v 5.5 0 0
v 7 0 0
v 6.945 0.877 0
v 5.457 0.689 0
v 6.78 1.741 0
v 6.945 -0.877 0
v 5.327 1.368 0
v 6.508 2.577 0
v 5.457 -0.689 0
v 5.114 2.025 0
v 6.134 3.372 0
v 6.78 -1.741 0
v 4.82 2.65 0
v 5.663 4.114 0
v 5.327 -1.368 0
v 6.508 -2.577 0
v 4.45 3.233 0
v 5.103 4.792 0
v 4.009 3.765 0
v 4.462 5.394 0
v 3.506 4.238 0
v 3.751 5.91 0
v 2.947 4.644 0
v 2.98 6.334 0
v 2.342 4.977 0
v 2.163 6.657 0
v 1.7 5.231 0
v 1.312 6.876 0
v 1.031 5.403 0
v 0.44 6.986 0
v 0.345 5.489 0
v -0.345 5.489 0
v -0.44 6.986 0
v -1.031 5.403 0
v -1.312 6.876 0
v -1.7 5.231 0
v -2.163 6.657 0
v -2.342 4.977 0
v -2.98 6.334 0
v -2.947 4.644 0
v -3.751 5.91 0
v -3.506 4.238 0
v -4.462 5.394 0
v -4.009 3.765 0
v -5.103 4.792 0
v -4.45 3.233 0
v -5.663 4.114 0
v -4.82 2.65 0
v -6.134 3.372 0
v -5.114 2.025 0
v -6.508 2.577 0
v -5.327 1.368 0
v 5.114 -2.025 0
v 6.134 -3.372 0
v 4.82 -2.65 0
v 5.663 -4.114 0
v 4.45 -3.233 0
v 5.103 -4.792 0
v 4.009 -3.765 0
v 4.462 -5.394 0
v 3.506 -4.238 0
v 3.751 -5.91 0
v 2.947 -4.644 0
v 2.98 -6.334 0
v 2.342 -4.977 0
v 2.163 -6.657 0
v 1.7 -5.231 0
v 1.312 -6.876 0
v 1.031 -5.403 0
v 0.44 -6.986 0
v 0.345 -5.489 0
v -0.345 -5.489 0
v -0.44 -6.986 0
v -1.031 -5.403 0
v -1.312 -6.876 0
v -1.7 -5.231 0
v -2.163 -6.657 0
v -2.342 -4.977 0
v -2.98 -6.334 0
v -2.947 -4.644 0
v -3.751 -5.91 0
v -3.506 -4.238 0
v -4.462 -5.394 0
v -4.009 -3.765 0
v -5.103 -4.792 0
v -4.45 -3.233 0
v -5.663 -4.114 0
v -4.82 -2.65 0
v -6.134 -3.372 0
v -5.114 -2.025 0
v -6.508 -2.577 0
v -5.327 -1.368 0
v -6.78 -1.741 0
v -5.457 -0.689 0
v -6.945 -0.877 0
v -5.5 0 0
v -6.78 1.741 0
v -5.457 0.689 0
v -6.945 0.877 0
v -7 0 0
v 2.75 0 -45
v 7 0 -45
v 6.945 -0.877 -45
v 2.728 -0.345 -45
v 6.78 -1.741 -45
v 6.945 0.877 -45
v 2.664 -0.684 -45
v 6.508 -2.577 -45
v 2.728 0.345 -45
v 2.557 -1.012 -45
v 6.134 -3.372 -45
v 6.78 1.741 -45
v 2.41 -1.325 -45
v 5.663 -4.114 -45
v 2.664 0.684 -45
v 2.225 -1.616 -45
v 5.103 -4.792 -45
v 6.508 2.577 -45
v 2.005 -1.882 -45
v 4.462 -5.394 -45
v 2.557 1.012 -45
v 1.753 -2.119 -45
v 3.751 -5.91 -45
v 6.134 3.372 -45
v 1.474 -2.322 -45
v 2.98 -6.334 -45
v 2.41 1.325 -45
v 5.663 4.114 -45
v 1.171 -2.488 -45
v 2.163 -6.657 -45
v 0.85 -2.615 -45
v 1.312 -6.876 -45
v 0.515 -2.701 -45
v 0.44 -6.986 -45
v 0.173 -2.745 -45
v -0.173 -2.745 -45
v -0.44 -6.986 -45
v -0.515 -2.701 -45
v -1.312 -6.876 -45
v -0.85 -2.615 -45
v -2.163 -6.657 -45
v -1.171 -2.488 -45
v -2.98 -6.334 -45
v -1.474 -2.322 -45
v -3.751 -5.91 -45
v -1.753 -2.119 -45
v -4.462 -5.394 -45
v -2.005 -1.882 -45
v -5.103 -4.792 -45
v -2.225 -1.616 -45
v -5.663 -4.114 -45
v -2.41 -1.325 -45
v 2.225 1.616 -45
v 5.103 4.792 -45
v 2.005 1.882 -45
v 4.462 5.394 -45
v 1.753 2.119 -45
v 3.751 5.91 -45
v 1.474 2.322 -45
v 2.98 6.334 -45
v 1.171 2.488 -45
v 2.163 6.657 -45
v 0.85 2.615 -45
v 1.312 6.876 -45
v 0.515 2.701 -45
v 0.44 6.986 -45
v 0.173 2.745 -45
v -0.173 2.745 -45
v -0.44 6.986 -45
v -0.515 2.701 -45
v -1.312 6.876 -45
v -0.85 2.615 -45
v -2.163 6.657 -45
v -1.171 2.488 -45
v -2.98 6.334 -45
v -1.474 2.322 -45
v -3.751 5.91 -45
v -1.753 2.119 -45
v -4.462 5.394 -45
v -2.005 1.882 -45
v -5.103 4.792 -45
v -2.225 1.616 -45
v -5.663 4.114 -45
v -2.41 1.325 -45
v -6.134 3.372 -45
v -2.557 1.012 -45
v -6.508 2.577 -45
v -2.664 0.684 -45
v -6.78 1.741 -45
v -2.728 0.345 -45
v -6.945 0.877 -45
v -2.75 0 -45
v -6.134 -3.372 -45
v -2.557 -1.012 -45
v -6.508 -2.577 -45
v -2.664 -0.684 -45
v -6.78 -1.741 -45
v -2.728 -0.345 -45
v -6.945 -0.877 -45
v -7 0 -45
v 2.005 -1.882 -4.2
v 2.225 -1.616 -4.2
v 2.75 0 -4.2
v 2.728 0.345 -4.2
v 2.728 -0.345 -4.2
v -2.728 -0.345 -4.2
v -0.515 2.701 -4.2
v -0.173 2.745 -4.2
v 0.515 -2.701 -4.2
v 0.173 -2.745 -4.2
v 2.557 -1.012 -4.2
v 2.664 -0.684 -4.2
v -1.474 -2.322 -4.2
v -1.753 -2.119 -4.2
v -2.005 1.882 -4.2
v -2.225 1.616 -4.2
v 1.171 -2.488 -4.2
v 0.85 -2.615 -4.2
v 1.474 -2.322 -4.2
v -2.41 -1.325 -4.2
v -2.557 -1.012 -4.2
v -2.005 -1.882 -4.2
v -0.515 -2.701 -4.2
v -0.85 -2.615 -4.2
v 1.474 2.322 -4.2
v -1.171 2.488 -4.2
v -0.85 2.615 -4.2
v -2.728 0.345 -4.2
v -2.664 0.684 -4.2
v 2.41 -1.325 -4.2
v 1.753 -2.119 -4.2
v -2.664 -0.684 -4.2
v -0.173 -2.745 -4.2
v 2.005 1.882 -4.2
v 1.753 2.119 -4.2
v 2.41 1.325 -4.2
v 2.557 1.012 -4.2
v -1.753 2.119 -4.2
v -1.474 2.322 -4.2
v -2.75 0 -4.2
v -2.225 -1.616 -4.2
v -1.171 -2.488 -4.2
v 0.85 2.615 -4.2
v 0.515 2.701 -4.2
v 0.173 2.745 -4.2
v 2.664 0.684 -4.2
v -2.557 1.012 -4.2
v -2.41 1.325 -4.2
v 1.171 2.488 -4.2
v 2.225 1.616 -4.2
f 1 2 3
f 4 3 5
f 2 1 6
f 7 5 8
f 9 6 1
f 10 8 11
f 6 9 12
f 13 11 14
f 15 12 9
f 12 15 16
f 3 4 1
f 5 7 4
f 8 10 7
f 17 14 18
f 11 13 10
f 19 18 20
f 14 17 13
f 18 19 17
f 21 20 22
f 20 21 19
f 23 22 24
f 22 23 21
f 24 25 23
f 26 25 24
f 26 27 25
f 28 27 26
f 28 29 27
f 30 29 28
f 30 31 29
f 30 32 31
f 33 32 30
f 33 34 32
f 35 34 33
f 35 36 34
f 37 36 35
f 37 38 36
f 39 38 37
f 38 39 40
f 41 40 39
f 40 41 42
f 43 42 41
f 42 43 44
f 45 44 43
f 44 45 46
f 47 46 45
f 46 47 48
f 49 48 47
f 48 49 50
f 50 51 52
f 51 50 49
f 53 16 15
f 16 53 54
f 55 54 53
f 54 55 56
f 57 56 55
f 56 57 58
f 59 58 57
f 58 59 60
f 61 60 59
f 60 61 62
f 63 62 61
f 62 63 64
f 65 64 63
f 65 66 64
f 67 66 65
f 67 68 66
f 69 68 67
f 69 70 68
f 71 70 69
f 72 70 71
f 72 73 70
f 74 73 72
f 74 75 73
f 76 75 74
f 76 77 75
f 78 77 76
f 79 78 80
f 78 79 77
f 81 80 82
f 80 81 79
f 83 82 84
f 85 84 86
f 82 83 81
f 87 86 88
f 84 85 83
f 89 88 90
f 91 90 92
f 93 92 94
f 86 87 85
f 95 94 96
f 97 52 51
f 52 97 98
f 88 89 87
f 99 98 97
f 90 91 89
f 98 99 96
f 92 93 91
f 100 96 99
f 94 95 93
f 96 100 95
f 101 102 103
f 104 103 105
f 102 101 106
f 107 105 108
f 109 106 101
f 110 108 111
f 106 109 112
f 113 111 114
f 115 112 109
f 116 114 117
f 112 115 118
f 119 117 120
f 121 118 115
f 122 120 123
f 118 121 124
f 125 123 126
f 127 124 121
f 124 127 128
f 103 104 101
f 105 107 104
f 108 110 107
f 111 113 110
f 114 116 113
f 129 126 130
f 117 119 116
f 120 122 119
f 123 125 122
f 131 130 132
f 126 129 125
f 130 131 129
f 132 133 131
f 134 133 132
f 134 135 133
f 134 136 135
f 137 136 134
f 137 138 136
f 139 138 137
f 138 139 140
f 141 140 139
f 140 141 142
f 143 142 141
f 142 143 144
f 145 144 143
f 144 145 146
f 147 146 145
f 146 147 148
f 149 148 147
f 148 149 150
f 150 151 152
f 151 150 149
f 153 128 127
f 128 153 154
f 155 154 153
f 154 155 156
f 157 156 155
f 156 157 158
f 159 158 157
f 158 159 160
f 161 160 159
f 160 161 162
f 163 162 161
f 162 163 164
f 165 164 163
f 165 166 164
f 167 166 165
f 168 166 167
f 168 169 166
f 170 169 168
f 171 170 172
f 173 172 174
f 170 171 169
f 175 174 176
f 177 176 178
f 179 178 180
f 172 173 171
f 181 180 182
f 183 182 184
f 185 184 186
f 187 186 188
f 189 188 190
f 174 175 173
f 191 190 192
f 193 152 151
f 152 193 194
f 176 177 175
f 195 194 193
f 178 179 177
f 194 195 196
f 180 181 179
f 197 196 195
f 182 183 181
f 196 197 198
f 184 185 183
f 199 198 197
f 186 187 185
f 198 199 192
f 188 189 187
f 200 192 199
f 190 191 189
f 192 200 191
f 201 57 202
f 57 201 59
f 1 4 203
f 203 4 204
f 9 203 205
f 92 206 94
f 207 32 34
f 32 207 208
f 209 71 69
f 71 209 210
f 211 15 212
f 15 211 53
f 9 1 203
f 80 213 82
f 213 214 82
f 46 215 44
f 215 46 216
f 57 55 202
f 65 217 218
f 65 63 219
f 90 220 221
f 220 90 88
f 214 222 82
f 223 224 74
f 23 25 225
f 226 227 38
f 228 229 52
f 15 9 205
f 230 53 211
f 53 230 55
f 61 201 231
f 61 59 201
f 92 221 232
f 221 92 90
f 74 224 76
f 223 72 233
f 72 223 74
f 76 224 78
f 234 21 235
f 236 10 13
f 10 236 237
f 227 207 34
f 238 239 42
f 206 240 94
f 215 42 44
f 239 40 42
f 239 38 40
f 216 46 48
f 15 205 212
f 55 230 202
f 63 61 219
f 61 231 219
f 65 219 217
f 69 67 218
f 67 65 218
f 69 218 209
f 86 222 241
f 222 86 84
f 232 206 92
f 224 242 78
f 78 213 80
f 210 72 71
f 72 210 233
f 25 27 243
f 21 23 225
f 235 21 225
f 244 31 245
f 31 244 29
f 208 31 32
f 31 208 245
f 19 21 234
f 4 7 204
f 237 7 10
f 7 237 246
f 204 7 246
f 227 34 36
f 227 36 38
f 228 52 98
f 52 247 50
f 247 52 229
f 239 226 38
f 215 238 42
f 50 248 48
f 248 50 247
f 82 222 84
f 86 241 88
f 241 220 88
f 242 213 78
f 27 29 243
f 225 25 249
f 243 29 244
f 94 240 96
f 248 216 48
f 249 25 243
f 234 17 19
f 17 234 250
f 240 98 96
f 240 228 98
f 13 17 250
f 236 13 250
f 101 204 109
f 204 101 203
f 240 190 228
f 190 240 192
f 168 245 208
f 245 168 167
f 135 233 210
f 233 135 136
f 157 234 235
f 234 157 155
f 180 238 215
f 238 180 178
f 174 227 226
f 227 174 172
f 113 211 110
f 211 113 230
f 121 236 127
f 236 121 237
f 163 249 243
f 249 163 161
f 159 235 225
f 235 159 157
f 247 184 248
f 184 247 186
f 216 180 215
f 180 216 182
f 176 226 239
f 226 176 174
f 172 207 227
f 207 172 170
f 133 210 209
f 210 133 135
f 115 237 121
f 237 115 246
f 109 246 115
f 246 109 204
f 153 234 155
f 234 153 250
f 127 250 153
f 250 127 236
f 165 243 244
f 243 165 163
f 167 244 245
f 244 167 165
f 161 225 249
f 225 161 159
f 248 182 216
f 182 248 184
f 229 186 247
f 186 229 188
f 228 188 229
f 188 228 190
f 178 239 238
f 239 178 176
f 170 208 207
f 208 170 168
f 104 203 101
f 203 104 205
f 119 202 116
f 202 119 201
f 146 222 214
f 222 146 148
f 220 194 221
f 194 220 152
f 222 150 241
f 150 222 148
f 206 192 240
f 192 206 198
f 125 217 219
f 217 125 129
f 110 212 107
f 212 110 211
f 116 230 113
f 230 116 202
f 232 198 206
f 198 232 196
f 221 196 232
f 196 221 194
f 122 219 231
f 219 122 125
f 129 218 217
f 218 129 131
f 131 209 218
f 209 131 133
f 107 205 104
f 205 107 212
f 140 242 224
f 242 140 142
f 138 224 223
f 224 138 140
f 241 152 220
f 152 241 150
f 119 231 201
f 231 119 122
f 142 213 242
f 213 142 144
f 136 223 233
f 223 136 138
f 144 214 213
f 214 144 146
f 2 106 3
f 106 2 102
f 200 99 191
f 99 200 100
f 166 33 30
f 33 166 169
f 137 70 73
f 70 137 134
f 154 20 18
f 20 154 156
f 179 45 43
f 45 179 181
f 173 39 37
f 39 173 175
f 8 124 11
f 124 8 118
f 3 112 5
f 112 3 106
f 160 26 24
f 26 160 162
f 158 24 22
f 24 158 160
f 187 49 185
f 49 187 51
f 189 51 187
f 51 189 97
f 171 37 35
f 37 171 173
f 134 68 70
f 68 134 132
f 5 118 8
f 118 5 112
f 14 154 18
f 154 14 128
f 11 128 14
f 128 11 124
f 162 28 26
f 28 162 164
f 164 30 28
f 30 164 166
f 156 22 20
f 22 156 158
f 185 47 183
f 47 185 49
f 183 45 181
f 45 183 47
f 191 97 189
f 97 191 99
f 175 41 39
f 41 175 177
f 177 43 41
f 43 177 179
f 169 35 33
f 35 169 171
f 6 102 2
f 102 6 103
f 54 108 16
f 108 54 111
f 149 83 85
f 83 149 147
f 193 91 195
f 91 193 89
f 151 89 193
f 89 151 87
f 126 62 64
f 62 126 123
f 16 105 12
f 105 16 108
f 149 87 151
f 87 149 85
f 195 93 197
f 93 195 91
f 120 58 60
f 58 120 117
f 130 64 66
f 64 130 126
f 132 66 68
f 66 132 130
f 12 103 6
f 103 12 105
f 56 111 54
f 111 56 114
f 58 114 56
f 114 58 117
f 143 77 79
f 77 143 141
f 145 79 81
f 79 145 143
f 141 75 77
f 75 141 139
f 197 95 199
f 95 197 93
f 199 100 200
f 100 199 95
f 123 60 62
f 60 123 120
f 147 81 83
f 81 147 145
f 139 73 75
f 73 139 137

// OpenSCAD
$fn = 50;


difference() {
	union() {
		translate(v = [0, 0, -45.0000000000]) {
			cylinder(h = 45, r = 7.0000000000);
		}
		cylinder(h = 0, r = 16.0000000000);
	}
	union() {
		translate(v = [0, 0, 0]) {
			rotate(a = [0, 0, 0]) {
				difference() {
					union() {
						#translate(v = [0, 0, -45.0000000000]) {
							cylinder(h = 45, r = 2.2500000000);
						}
						#translate(v = [0, 0, -4.2000000000]) {
							cylinder(h = 4.2000000000, r1 = 2.7500000000, r2 = 5.5000000000);
						}
						#translate(v = [0, 0, -45.0000000000]) {
							cylinder(h = 45, r = 2.7500000000);
						}
						#translate(v = [0, 0, -45.0000000000]) {
							cylinder(h = 45, r = 2.2500000000);
						}
					}
					union();
				}
			}
		}
	}
}
